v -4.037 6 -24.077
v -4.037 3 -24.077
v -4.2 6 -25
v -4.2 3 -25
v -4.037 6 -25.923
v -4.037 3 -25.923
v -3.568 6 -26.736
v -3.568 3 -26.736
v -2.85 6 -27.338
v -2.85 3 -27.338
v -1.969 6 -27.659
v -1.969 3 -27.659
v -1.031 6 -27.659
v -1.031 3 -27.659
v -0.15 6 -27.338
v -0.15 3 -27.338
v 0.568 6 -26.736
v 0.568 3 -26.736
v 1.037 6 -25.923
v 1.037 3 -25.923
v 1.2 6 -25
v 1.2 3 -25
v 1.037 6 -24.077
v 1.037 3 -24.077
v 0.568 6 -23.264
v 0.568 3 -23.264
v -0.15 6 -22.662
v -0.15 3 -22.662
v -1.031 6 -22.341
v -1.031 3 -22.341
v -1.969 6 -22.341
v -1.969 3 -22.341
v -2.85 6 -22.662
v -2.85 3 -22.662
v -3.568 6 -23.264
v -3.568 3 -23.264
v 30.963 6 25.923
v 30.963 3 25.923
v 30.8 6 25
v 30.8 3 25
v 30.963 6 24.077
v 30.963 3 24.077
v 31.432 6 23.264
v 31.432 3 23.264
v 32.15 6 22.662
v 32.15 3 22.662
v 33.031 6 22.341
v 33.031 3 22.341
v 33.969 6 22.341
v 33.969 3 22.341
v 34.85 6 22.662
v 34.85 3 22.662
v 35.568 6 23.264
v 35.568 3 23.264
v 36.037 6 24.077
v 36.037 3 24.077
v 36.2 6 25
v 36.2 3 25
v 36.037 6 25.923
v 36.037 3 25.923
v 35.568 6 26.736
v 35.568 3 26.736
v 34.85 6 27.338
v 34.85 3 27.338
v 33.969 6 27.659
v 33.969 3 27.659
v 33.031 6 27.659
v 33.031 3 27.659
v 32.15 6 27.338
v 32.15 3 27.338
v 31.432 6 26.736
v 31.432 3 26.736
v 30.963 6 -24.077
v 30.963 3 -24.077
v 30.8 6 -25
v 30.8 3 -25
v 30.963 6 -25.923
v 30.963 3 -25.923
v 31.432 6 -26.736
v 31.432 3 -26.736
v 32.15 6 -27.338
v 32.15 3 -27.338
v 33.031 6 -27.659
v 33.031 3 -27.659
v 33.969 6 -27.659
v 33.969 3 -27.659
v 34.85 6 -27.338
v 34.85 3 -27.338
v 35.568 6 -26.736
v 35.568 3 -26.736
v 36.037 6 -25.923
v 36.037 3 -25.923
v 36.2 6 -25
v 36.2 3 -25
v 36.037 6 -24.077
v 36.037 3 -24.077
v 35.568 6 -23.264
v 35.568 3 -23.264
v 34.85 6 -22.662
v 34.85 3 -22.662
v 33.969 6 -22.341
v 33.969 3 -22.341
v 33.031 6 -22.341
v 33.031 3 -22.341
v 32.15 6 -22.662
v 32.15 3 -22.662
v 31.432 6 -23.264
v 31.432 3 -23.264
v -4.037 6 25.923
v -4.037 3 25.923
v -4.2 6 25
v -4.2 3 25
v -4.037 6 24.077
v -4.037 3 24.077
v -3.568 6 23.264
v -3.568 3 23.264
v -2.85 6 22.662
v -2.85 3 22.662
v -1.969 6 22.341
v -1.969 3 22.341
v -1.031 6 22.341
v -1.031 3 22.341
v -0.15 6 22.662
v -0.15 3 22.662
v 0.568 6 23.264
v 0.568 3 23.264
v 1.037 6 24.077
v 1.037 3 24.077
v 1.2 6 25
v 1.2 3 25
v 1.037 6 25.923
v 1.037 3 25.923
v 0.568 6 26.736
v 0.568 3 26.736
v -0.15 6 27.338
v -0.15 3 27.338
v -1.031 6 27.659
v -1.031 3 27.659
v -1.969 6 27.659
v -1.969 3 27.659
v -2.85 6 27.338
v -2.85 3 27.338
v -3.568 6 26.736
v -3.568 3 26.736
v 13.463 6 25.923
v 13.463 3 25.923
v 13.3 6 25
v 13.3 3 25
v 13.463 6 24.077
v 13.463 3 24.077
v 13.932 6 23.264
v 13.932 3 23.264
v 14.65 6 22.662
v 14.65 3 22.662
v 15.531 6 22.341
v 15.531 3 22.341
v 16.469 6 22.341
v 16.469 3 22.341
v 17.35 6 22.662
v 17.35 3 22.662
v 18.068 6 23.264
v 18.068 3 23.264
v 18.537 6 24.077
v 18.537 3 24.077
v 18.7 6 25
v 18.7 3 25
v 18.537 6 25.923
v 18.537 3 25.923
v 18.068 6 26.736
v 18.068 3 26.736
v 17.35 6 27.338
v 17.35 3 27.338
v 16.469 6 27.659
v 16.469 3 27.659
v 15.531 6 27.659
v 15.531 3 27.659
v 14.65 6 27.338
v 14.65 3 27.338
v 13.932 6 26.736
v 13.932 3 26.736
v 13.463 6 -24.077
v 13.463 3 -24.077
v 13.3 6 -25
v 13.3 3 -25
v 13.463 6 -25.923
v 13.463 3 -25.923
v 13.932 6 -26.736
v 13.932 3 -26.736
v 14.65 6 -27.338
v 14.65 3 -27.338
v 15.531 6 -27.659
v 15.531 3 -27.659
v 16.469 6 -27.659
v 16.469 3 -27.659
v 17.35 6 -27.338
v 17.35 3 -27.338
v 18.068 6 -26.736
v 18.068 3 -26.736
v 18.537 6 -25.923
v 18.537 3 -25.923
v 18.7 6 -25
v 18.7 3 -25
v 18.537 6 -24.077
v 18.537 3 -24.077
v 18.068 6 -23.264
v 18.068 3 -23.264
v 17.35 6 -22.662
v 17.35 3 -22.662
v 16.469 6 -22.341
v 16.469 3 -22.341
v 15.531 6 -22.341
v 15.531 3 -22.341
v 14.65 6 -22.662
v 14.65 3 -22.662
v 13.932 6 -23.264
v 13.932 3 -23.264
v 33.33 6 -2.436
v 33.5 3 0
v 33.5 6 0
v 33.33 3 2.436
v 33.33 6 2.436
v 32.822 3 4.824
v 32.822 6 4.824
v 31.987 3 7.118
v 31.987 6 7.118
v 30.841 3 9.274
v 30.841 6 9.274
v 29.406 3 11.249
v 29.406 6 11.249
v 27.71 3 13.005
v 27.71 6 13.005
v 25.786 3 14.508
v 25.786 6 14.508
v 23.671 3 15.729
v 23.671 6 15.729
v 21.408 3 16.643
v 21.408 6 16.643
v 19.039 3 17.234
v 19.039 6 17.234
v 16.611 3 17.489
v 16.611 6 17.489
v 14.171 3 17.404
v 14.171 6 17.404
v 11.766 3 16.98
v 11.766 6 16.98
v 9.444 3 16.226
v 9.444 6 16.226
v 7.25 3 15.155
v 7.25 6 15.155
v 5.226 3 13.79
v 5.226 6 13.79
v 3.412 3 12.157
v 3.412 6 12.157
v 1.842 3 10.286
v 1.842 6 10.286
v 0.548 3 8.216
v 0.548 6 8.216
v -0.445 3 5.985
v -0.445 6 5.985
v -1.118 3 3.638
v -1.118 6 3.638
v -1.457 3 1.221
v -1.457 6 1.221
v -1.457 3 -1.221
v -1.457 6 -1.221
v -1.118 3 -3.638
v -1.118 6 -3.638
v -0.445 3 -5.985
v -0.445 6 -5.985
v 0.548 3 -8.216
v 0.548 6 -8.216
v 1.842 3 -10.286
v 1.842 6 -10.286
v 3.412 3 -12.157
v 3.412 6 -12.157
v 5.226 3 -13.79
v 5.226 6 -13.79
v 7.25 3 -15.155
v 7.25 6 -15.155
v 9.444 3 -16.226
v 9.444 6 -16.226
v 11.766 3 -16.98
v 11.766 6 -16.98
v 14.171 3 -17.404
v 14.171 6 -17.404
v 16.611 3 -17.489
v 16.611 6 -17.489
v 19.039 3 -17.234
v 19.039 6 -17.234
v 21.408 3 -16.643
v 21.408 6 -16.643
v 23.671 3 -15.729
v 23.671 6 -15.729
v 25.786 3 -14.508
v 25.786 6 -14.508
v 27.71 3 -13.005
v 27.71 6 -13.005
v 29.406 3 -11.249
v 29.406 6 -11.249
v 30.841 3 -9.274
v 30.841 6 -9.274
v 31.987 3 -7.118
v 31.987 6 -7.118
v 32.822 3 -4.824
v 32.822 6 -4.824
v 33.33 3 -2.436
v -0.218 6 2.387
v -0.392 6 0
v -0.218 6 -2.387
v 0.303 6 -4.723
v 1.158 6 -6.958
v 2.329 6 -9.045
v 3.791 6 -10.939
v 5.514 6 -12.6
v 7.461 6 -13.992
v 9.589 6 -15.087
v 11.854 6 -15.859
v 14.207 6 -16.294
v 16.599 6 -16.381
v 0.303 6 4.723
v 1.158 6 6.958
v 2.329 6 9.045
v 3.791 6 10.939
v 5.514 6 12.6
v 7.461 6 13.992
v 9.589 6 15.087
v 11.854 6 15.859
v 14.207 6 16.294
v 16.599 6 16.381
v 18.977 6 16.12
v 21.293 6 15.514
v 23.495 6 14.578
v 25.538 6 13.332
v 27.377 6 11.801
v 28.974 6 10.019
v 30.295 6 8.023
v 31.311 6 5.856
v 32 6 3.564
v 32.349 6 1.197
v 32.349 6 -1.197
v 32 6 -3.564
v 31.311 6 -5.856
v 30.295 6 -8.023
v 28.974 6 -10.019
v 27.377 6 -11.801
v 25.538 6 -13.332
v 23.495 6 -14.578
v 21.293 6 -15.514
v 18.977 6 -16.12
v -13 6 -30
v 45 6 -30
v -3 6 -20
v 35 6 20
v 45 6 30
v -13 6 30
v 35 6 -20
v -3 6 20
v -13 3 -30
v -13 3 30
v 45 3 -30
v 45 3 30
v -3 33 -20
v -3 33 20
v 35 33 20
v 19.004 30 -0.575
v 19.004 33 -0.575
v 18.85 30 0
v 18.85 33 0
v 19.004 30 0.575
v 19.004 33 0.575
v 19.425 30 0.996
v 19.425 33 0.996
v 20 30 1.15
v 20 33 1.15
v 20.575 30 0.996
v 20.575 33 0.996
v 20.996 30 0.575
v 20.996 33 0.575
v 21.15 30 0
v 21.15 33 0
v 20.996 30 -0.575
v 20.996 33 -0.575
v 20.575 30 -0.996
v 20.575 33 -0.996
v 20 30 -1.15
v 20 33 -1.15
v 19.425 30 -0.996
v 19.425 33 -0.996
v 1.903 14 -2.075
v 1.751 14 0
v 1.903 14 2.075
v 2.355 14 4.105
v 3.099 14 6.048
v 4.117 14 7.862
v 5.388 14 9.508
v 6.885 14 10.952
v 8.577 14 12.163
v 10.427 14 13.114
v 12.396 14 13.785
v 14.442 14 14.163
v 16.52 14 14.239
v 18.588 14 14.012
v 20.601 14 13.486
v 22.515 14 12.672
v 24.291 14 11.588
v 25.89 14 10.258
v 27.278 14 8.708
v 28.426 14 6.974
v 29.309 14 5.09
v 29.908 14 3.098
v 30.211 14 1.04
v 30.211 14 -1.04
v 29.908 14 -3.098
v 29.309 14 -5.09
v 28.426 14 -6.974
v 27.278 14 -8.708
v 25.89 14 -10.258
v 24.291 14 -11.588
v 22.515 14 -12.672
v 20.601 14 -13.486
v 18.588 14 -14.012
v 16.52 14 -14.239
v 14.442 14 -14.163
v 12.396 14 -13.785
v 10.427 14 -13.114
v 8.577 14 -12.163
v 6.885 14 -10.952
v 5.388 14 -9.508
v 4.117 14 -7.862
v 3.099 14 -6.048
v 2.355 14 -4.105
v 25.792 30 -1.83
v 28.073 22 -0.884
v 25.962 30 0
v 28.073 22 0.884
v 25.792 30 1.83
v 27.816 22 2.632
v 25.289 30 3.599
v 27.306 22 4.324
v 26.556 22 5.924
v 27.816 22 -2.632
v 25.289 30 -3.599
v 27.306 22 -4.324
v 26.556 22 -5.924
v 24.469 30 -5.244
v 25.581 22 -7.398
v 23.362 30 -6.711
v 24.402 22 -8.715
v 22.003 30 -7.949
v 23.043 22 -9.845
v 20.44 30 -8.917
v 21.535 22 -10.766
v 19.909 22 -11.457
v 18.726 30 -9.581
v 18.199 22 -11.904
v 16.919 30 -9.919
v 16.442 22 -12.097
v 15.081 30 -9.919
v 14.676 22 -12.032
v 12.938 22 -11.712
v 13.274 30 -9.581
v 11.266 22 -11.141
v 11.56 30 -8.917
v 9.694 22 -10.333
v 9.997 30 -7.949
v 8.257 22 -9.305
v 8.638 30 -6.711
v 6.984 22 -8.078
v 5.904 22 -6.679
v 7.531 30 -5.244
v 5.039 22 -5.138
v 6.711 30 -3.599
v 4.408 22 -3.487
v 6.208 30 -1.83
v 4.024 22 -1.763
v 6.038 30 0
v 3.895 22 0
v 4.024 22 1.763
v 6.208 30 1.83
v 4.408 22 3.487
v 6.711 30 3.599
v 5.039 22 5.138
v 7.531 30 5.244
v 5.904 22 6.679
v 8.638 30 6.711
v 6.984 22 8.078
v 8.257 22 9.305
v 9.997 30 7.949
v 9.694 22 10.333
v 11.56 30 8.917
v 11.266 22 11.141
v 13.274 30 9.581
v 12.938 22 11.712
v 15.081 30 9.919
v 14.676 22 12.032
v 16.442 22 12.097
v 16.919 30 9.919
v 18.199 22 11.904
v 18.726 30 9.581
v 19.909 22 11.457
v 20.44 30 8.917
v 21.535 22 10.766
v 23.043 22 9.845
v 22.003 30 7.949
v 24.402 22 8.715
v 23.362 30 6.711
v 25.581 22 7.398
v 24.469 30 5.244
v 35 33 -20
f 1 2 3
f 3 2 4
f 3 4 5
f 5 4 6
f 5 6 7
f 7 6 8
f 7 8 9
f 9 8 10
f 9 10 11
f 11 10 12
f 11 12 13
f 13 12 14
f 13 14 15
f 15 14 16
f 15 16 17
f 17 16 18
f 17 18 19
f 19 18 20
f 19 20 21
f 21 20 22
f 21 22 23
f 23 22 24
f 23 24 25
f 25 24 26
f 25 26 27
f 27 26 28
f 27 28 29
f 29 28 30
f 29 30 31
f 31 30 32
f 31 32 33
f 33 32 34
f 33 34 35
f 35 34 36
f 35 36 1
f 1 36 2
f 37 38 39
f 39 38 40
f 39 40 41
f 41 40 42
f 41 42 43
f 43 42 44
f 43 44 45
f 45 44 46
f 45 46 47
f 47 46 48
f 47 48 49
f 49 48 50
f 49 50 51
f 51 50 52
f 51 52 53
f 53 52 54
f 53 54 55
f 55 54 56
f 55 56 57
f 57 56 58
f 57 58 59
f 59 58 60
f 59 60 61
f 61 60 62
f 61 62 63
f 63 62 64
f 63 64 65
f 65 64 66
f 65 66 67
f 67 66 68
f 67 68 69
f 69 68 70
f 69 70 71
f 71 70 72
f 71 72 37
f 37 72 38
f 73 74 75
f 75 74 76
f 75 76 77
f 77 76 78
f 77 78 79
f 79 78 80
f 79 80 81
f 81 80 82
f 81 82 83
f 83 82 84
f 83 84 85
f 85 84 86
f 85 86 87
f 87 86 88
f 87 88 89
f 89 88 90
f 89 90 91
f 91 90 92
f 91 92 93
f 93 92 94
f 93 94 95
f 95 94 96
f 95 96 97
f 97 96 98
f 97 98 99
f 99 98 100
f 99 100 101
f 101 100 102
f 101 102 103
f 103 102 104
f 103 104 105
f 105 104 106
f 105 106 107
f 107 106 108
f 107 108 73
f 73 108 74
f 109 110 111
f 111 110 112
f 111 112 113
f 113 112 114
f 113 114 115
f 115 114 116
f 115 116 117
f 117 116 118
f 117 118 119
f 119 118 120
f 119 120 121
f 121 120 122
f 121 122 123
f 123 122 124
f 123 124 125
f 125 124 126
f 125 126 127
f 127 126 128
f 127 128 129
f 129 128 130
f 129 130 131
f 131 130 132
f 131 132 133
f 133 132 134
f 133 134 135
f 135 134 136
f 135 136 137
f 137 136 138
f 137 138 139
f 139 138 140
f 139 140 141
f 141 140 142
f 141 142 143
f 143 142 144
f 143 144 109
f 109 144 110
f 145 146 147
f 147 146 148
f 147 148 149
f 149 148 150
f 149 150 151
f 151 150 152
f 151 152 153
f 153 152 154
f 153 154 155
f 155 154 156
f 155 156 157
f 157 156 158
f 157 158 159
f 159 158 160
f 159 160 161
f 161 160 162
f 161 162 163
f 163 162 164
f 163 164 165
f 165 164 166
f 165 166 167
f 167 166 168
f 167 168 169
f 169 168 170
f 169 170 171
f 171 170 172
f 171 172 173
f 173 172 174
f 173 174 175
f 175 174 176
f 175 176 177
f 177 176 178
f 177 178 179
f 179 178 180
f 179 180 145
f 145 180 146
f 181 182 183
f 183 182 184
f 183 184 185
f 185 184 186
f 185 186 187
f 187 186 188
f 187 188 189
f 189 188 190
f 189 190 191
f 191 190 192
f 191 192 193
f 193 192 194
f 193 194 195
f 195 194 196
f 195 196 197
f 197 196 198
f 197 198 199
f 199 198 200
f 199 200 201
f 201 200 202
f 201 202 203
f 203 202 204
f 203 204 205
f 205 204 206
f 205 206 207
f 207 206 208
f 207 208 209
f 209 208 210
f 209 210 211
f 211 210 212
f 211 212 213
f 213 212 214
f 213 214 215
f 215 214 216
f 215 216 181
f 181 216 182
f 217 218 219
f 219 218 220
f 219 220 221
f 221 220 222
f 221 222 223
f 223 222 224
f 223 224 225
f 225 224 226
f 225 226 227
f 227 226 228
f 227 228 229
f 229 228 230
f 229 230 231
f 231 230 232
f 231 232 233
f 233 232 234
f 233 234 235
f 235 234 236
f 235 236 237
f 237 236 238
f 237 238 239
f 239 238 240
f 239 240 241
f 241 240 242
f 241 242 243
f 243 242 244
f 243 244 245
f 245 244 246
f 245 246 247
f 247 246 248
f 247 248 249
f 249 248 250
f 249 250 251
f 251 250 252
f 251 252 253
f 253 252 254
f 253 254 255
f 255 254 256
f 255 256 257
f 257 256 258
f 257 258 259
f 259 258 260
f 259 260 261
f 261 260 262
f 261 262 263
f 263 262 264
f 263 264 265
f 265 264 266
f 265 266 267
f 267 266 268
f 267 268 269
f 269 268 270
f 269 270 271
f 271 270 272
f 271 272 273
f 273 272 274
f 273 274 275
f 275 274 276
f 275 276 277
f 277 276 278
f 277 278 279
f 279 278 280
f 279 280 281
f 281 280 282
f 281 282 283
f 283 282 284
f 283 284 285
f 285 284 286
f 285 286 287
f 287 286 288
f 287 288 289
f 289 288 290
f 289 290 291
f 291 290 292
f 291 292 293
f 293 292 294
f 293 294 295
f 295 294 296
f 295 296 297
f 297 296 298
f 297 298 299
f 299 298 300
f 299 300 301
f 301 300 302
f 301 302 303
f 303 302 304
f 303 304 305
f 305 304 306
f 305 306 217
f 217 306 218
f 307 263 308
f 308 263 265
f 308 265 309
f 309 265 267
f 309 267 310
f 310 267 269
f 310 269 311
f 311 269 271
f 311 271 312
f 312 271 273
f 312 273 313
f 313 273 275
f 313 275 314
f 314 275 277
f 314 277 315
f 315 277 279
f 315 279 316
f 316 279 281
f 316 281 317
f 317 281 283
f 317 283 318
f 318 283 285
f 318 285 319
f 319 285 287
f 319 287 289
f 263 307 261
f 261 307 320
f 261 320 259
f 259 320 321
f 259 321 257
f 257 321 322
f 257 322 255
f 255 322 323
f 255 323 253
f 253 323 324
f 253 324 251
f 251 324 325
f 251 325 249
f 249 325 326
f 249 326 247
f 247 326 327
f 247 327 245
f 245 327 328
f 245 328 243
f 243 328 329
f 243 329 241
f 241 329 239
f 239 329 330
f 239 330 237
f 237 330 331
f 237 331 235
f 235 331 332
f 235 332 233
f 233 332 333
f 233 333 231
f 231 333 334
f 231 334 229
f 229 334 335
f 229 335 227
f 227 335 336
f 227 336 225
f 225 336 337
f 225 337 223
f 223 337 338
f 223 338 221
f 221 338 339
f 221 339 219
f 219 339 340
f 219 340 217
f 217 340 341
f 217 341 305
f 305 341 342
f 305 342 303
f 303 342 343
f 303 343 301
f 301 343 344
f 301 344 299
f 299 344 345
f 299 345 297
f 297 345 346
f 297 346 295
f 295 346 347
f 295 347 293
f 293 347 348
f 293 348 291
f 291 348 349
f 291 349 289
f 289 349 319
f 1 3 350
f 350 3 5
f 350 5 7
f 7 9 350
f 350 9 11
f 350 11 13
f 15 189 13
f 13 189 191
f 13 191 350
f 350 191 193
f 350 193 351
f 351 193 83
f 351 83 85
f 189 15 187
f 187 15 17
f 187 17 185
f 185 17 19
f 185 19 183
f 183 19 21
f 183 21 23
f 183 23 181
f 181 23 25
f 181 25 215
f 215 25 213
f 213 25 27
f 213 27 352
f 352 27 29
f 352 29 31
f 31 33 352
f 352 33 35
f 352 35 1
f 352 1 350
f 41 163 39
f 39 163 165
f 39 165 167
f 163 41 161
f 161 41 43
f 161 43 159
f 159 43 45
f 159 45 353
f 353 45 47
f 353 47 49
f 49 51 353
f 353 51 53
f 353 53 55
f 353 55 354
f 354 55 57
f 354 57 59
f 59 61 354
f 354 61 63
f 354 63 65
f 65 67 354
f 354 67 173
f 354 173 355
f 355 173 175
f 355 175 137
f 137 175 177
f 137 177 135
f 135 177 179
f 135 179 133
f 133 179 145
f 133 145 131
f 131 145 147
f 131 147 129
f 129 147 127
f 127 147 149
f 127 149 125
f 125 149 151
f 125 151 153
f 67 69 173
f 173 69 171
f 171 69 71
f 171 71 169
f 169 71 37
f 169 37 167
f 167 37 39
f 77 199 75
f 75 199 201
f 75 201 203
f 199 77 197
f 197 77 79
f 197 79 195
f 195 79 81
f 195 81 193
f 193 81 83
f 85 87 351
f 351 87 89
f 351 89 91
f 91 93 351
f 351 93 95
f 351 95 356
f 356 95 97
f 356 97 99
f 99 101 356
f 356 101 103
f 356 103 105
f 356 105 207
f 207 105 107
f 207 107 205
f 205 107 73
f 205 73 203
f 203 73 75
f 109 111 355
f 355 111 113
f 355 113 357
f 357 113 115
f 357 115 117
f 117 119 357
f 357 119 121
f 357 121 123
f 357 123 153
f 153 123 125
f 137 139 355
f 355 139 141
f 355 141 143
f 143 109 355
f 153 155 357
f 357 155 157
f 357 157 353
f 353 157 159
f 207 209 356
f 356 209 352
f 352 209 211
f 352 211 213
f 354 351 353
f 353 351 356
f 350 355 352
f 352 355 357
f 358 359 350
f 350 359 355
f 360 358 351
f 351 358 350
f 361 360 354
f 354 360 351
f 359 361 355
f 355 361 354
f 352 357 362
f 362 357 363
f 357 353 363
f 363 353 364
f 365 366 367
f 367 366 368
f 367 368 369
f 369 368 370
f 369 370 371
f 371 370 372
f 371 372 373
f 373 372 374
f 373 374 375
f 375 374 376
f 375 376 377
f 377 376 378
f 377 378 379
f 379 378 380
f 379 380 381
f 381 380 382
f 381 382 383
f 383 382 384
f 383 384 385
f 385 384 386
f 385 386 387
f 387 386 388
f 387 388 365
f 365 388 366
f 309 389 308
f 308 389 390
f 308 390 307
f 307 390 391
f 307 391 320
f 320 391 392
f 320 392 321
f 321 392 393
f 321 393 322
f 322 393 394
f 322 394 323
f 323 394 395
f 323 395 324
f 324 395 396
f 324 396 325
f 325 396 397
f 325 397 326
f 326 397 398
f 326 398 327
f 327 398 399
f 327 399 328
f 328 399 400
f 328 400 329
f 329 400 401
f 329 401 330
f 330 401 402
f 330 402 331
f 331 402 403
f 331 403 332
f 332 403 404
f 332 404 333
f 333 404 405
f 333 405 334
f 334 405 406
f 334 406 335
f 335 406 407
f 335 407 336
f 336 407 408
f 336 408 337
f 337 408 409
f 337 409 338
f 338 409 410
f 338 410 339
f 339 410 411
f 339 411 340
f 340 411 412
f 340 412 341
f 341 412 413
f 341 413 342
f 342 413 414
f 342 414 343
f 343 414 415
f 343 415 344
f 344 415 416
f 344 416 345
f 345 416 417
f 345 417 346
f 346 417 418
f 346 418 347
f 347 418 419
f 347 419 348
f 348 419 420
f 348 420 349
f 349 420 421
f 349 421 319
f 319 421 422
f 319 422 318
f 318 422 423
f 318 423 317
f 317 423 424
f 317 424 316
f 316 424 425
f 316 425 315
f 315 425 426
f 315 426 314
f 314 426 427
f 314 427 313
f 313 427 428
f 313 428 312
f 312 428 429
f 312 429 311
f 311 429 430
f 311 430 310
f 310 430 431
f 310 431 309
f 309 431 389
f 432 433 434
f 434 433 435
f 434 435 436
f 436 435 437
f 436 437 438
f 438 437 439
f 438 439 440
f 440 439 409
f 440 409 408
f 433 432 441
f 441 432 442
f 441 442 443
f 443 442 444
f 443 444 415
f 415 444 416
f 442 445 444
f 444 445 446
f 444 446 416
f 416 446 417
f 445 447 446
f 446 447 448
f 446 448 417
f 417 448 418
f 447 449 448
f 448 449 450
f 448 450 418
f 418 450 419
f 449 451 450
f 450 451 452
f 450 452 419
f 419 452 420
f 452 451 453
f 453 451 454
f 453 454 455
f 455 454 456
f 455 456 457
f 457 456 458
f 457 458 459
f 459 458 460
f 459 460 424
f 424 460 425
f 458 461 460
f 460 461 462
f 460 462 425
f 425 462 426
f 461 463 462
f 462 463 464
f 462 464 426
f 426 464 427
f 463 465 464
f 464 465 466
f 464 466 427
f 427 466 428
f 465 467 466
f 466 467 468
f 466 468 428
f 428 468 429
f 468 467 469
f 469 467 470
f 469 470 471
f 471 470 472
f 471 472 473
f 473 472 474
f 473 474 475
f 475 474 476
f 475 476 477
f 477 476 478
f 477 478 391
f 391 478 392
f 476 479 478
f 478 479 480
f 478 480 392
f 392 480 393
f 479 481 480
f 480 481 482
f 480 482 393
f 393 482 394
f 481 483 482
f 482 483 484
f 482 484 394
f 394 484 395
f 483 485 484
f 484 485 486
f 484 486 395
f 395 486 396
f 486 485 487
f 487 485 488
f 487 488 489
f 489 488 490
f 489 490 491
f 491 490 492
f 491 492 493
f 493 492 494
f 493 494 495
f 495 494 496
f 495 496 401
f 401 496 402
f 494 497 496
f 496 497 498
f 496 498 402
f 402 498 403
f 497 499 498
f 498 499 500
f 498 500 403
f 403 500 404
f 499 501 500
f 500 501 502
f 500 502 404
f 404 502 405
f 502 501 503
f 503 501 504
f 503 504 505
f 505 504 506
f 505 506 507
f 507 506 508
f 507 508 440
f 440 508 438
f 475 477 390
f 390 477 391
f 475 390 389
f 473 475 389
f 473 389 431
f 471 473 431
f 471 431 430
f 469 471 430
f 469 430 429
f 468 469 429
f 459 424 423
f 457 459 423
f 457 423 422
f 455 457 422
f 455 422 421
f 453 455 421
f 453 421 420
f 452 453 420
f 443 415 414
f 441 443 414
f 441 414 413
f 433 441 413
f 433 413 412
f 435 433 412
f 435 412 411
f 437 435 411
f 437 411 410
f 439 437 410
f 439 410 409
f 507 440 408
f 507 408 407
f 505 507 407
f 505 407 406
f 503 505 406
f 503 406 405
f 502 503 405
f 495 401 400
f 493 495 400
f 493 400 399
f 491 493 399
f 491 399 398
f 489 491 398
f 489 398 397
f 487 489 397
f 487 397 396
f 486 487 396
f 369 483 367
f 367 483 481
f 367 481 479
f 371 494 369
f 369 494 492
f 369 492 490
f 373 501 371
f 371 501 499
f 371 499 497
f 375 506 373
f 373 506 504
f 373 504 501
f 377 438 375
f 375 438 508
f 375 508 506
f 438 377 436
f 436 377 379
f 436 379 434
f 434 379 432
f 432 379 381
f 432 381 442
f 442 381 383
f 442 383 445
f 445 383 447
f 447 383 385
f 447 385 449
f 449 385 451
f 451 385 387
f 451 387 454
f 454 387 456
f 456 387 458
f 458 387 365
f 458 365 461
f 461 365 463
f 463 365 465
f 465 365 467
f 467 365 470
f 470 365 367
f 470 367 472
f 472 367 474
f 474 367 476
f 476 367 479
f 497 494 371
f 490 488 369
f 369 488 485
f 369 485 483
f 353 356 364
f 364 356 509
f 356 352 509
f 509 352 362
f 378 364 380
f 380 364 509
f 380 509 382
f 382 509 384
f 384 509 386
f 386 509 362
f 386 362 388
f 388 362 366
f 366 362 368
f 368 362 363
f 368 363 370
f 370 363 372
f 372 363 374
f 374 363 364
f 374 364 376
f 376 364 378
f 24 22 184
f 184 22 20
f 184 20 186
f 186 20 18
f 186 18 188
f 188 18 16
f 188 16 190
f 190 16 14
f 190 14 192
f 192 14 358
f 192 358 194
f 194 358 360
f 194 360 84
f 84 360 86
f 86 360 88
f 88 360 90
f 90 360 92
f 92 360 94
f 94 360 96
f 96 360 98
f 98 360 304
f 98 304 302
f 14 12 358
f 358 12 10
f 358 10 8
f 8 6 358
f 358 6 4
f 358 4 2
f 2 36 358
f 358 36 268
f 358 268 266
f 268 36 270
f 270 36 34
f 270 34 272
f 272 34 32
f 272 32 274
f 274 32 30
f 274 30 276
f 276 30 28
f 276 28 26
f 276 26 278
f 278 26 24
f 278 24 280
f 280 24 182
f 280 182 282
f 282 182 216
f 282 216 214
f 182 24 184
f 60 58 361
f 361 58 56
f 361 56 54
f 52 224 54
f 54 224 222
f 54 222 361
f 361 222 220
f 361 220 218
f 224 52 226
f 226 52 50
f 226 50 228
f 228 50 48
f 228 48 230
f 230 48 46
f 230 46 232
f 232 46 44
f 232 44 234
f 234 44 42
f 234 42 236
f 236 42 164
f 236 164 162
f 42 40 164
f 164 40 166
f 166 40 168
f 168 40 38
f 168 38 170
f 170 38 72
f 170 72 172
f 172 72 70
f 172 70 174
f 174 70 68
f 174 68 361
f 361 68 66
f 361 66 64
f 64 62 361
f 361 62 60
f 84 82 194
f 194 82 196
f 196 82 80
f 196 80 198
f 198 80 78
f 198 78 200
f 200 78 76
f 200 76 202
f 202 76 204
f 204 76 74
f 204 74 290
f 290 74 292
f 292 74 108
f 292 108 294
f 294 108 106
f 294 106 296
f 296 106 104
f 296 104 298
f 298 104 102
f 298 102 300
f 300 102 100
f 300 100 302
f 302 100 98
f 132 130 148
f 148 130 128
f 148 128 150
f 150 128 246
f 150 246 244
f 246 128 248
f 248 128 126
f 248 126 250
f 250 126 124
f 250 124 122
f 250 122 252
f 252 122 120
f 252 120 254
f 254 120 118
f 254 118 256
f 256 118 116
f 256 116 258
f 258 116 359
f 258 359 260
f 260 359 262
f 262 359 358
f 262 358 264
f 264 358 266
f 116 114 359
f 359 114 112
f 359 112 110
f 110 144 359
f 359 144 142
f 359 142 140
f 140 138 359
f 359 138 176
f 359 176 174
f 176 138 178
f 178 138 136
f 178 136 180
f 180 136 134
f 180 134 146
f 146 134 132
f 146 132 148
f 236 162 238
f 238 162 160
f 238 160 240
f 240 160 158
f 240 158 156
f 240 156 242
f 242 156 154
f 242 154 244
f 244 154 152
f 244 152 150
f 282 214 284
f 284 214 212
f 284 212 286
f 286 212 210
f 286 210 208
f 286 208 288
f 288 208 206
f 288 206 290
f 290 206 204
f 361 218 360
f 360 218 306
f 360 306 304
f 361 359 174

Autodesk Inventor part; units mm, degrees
ref_plane "YZ Plane" through (0, 0, 0) normal (1, 0, 0) x (0, 1, 0)
ref_plane "XZ Plane" through (0, 0, 0) normal (0, 1, 0) x (-1, 0, 0)
ref_plane "XY Plane" through (0, 0, 0) normal (0, 0, 1) x (1, 0, 0)
ref_plane "Work Plane5" through (0, 3, 0) normal (0, 1, 0) x (1, 0, 0)
sketch "Sketch45" plane through (0, 3, 0) normal (0, 1, 0) x (1, 0, 0)
  line L0 (35, -20) -> (-3, -20)
  line L1 (-3, -20) -> (-3, 20)
  line L2 (-3, 20) -> (35, 20)
  line L3 (35, 20) -> (35, -20)
  point P0 (0, 0)
  dimension "d142" = 38
  dimension "d143" = 40
extrude "Extrusion34" add sketch "Sketch45" along normal blind 30
ref_plane "Work Plane2" through (0, 0, 0) normal (0, -1, 0) x (1, 0, 0)
sketch "Sketch47" plane through (0, 0, 0) normal (0, -1, 0) x (1, 0, 0)
  circle A0 centre (16, 0) radius 18
  point P0 (0, 0)
  dimension "d146" = 36
extrude "Extrusion35" cut sketch "Sketch47" against normal blind 30 draft -15
ref_plane "Work Plane1" through (0, 3, 0) normal (0, 1, 0) x (1, 0, 0)
sketch "Sketch74" plane through (0, 33, 0) normal (0, 1, 0) x (1, 0, 0)
  circle A0 centre (20, 0) radius 1.15
  point P0 (0, 0)
  dimension "d210" = 2.3
extrude "Extrusion51" cut sketch "Sketch74" against normal blind 10
sketch "Sketch77" plane through (0, 3, 0) normal (0, -1, 0) x (1, 0, 0)
  circle A0 centre (16, 0) radius 17.5
  point P0 (0, 0)
  dimension "d219" = 35
sketch "Sketch78" plane through (0, 3, 0) normal (0, -1, 0) x (1, 0, 0)
  line L0 (45, -30) -> (-13, -30)
  line L1 (-13, -30) -> (-13, 30)
  line L2 (-13, 30) -> (45, 30)
  line L3 (45, 30) -> (45, -30)
  line L4 (45, -30) -> (-13, 30) construction
  line L5 (-13, -30) -> (45, 30) construction
  point P0 (0, 0)
  point P1 (16, 0)
  dimension "d220" = 58
  dimension "d221" = 60
extrude "Extrusion53" add sketch "Sketch78" against normal blind 3
extrude "Extrusion54" cut sketch "Sketch77" against normal blind 3
sketch "Sketch81" plane through (0, 3, 0) normal (0, -1, 0) x (1, 0, 0)
  circle A0 centre (33.5, -25) radius 2.7
  line L0 (-13, -30) -> (45, -30) projected
  line L1 (45, -30) -> (45, 30) projected
  circle A1 centre (16, -25) radius 2.7
  circle A2 centre (-1.5, -25) radius 2.7
  circle A3 centre (-1.5, 25) radius 2.7
  circle A4 centre (16, 25) radius 2.7
  circle A5 centre (33.5, 25) radius 2.7
  point P0 (0, 0)
  dimension "mag_D" = 5.4
  dimension "d232" = 5
  dimension "d233" = 11.5
  dimension "d234" = 5.4
  dimension "d235" = 17.5
  dimension "d236" = 5.4
  dimension "d237" = 17.5
  dimension "d243" = 5.4
  dimension "d245" = 5.4
  dimension "d246" = 17.5
  dimension "d247" = 5.4
  dimension "d248" = 17.5
extrude "Extrusion56" cut sketch "Sketch81" against normal blind 30
equation "\"d234\" = mag_D"
equation "\"d236\" = mag_D"
equation "\"d237\" = d235"
equation "\"d243\" = mag_D"
equation "\"d245\" = mag_D"
equation "\"d246\" = d235"
equation "\"d247\" = mag_D"
equation "\"d248\" = d235"
properties part number "liquid_port_v06"
